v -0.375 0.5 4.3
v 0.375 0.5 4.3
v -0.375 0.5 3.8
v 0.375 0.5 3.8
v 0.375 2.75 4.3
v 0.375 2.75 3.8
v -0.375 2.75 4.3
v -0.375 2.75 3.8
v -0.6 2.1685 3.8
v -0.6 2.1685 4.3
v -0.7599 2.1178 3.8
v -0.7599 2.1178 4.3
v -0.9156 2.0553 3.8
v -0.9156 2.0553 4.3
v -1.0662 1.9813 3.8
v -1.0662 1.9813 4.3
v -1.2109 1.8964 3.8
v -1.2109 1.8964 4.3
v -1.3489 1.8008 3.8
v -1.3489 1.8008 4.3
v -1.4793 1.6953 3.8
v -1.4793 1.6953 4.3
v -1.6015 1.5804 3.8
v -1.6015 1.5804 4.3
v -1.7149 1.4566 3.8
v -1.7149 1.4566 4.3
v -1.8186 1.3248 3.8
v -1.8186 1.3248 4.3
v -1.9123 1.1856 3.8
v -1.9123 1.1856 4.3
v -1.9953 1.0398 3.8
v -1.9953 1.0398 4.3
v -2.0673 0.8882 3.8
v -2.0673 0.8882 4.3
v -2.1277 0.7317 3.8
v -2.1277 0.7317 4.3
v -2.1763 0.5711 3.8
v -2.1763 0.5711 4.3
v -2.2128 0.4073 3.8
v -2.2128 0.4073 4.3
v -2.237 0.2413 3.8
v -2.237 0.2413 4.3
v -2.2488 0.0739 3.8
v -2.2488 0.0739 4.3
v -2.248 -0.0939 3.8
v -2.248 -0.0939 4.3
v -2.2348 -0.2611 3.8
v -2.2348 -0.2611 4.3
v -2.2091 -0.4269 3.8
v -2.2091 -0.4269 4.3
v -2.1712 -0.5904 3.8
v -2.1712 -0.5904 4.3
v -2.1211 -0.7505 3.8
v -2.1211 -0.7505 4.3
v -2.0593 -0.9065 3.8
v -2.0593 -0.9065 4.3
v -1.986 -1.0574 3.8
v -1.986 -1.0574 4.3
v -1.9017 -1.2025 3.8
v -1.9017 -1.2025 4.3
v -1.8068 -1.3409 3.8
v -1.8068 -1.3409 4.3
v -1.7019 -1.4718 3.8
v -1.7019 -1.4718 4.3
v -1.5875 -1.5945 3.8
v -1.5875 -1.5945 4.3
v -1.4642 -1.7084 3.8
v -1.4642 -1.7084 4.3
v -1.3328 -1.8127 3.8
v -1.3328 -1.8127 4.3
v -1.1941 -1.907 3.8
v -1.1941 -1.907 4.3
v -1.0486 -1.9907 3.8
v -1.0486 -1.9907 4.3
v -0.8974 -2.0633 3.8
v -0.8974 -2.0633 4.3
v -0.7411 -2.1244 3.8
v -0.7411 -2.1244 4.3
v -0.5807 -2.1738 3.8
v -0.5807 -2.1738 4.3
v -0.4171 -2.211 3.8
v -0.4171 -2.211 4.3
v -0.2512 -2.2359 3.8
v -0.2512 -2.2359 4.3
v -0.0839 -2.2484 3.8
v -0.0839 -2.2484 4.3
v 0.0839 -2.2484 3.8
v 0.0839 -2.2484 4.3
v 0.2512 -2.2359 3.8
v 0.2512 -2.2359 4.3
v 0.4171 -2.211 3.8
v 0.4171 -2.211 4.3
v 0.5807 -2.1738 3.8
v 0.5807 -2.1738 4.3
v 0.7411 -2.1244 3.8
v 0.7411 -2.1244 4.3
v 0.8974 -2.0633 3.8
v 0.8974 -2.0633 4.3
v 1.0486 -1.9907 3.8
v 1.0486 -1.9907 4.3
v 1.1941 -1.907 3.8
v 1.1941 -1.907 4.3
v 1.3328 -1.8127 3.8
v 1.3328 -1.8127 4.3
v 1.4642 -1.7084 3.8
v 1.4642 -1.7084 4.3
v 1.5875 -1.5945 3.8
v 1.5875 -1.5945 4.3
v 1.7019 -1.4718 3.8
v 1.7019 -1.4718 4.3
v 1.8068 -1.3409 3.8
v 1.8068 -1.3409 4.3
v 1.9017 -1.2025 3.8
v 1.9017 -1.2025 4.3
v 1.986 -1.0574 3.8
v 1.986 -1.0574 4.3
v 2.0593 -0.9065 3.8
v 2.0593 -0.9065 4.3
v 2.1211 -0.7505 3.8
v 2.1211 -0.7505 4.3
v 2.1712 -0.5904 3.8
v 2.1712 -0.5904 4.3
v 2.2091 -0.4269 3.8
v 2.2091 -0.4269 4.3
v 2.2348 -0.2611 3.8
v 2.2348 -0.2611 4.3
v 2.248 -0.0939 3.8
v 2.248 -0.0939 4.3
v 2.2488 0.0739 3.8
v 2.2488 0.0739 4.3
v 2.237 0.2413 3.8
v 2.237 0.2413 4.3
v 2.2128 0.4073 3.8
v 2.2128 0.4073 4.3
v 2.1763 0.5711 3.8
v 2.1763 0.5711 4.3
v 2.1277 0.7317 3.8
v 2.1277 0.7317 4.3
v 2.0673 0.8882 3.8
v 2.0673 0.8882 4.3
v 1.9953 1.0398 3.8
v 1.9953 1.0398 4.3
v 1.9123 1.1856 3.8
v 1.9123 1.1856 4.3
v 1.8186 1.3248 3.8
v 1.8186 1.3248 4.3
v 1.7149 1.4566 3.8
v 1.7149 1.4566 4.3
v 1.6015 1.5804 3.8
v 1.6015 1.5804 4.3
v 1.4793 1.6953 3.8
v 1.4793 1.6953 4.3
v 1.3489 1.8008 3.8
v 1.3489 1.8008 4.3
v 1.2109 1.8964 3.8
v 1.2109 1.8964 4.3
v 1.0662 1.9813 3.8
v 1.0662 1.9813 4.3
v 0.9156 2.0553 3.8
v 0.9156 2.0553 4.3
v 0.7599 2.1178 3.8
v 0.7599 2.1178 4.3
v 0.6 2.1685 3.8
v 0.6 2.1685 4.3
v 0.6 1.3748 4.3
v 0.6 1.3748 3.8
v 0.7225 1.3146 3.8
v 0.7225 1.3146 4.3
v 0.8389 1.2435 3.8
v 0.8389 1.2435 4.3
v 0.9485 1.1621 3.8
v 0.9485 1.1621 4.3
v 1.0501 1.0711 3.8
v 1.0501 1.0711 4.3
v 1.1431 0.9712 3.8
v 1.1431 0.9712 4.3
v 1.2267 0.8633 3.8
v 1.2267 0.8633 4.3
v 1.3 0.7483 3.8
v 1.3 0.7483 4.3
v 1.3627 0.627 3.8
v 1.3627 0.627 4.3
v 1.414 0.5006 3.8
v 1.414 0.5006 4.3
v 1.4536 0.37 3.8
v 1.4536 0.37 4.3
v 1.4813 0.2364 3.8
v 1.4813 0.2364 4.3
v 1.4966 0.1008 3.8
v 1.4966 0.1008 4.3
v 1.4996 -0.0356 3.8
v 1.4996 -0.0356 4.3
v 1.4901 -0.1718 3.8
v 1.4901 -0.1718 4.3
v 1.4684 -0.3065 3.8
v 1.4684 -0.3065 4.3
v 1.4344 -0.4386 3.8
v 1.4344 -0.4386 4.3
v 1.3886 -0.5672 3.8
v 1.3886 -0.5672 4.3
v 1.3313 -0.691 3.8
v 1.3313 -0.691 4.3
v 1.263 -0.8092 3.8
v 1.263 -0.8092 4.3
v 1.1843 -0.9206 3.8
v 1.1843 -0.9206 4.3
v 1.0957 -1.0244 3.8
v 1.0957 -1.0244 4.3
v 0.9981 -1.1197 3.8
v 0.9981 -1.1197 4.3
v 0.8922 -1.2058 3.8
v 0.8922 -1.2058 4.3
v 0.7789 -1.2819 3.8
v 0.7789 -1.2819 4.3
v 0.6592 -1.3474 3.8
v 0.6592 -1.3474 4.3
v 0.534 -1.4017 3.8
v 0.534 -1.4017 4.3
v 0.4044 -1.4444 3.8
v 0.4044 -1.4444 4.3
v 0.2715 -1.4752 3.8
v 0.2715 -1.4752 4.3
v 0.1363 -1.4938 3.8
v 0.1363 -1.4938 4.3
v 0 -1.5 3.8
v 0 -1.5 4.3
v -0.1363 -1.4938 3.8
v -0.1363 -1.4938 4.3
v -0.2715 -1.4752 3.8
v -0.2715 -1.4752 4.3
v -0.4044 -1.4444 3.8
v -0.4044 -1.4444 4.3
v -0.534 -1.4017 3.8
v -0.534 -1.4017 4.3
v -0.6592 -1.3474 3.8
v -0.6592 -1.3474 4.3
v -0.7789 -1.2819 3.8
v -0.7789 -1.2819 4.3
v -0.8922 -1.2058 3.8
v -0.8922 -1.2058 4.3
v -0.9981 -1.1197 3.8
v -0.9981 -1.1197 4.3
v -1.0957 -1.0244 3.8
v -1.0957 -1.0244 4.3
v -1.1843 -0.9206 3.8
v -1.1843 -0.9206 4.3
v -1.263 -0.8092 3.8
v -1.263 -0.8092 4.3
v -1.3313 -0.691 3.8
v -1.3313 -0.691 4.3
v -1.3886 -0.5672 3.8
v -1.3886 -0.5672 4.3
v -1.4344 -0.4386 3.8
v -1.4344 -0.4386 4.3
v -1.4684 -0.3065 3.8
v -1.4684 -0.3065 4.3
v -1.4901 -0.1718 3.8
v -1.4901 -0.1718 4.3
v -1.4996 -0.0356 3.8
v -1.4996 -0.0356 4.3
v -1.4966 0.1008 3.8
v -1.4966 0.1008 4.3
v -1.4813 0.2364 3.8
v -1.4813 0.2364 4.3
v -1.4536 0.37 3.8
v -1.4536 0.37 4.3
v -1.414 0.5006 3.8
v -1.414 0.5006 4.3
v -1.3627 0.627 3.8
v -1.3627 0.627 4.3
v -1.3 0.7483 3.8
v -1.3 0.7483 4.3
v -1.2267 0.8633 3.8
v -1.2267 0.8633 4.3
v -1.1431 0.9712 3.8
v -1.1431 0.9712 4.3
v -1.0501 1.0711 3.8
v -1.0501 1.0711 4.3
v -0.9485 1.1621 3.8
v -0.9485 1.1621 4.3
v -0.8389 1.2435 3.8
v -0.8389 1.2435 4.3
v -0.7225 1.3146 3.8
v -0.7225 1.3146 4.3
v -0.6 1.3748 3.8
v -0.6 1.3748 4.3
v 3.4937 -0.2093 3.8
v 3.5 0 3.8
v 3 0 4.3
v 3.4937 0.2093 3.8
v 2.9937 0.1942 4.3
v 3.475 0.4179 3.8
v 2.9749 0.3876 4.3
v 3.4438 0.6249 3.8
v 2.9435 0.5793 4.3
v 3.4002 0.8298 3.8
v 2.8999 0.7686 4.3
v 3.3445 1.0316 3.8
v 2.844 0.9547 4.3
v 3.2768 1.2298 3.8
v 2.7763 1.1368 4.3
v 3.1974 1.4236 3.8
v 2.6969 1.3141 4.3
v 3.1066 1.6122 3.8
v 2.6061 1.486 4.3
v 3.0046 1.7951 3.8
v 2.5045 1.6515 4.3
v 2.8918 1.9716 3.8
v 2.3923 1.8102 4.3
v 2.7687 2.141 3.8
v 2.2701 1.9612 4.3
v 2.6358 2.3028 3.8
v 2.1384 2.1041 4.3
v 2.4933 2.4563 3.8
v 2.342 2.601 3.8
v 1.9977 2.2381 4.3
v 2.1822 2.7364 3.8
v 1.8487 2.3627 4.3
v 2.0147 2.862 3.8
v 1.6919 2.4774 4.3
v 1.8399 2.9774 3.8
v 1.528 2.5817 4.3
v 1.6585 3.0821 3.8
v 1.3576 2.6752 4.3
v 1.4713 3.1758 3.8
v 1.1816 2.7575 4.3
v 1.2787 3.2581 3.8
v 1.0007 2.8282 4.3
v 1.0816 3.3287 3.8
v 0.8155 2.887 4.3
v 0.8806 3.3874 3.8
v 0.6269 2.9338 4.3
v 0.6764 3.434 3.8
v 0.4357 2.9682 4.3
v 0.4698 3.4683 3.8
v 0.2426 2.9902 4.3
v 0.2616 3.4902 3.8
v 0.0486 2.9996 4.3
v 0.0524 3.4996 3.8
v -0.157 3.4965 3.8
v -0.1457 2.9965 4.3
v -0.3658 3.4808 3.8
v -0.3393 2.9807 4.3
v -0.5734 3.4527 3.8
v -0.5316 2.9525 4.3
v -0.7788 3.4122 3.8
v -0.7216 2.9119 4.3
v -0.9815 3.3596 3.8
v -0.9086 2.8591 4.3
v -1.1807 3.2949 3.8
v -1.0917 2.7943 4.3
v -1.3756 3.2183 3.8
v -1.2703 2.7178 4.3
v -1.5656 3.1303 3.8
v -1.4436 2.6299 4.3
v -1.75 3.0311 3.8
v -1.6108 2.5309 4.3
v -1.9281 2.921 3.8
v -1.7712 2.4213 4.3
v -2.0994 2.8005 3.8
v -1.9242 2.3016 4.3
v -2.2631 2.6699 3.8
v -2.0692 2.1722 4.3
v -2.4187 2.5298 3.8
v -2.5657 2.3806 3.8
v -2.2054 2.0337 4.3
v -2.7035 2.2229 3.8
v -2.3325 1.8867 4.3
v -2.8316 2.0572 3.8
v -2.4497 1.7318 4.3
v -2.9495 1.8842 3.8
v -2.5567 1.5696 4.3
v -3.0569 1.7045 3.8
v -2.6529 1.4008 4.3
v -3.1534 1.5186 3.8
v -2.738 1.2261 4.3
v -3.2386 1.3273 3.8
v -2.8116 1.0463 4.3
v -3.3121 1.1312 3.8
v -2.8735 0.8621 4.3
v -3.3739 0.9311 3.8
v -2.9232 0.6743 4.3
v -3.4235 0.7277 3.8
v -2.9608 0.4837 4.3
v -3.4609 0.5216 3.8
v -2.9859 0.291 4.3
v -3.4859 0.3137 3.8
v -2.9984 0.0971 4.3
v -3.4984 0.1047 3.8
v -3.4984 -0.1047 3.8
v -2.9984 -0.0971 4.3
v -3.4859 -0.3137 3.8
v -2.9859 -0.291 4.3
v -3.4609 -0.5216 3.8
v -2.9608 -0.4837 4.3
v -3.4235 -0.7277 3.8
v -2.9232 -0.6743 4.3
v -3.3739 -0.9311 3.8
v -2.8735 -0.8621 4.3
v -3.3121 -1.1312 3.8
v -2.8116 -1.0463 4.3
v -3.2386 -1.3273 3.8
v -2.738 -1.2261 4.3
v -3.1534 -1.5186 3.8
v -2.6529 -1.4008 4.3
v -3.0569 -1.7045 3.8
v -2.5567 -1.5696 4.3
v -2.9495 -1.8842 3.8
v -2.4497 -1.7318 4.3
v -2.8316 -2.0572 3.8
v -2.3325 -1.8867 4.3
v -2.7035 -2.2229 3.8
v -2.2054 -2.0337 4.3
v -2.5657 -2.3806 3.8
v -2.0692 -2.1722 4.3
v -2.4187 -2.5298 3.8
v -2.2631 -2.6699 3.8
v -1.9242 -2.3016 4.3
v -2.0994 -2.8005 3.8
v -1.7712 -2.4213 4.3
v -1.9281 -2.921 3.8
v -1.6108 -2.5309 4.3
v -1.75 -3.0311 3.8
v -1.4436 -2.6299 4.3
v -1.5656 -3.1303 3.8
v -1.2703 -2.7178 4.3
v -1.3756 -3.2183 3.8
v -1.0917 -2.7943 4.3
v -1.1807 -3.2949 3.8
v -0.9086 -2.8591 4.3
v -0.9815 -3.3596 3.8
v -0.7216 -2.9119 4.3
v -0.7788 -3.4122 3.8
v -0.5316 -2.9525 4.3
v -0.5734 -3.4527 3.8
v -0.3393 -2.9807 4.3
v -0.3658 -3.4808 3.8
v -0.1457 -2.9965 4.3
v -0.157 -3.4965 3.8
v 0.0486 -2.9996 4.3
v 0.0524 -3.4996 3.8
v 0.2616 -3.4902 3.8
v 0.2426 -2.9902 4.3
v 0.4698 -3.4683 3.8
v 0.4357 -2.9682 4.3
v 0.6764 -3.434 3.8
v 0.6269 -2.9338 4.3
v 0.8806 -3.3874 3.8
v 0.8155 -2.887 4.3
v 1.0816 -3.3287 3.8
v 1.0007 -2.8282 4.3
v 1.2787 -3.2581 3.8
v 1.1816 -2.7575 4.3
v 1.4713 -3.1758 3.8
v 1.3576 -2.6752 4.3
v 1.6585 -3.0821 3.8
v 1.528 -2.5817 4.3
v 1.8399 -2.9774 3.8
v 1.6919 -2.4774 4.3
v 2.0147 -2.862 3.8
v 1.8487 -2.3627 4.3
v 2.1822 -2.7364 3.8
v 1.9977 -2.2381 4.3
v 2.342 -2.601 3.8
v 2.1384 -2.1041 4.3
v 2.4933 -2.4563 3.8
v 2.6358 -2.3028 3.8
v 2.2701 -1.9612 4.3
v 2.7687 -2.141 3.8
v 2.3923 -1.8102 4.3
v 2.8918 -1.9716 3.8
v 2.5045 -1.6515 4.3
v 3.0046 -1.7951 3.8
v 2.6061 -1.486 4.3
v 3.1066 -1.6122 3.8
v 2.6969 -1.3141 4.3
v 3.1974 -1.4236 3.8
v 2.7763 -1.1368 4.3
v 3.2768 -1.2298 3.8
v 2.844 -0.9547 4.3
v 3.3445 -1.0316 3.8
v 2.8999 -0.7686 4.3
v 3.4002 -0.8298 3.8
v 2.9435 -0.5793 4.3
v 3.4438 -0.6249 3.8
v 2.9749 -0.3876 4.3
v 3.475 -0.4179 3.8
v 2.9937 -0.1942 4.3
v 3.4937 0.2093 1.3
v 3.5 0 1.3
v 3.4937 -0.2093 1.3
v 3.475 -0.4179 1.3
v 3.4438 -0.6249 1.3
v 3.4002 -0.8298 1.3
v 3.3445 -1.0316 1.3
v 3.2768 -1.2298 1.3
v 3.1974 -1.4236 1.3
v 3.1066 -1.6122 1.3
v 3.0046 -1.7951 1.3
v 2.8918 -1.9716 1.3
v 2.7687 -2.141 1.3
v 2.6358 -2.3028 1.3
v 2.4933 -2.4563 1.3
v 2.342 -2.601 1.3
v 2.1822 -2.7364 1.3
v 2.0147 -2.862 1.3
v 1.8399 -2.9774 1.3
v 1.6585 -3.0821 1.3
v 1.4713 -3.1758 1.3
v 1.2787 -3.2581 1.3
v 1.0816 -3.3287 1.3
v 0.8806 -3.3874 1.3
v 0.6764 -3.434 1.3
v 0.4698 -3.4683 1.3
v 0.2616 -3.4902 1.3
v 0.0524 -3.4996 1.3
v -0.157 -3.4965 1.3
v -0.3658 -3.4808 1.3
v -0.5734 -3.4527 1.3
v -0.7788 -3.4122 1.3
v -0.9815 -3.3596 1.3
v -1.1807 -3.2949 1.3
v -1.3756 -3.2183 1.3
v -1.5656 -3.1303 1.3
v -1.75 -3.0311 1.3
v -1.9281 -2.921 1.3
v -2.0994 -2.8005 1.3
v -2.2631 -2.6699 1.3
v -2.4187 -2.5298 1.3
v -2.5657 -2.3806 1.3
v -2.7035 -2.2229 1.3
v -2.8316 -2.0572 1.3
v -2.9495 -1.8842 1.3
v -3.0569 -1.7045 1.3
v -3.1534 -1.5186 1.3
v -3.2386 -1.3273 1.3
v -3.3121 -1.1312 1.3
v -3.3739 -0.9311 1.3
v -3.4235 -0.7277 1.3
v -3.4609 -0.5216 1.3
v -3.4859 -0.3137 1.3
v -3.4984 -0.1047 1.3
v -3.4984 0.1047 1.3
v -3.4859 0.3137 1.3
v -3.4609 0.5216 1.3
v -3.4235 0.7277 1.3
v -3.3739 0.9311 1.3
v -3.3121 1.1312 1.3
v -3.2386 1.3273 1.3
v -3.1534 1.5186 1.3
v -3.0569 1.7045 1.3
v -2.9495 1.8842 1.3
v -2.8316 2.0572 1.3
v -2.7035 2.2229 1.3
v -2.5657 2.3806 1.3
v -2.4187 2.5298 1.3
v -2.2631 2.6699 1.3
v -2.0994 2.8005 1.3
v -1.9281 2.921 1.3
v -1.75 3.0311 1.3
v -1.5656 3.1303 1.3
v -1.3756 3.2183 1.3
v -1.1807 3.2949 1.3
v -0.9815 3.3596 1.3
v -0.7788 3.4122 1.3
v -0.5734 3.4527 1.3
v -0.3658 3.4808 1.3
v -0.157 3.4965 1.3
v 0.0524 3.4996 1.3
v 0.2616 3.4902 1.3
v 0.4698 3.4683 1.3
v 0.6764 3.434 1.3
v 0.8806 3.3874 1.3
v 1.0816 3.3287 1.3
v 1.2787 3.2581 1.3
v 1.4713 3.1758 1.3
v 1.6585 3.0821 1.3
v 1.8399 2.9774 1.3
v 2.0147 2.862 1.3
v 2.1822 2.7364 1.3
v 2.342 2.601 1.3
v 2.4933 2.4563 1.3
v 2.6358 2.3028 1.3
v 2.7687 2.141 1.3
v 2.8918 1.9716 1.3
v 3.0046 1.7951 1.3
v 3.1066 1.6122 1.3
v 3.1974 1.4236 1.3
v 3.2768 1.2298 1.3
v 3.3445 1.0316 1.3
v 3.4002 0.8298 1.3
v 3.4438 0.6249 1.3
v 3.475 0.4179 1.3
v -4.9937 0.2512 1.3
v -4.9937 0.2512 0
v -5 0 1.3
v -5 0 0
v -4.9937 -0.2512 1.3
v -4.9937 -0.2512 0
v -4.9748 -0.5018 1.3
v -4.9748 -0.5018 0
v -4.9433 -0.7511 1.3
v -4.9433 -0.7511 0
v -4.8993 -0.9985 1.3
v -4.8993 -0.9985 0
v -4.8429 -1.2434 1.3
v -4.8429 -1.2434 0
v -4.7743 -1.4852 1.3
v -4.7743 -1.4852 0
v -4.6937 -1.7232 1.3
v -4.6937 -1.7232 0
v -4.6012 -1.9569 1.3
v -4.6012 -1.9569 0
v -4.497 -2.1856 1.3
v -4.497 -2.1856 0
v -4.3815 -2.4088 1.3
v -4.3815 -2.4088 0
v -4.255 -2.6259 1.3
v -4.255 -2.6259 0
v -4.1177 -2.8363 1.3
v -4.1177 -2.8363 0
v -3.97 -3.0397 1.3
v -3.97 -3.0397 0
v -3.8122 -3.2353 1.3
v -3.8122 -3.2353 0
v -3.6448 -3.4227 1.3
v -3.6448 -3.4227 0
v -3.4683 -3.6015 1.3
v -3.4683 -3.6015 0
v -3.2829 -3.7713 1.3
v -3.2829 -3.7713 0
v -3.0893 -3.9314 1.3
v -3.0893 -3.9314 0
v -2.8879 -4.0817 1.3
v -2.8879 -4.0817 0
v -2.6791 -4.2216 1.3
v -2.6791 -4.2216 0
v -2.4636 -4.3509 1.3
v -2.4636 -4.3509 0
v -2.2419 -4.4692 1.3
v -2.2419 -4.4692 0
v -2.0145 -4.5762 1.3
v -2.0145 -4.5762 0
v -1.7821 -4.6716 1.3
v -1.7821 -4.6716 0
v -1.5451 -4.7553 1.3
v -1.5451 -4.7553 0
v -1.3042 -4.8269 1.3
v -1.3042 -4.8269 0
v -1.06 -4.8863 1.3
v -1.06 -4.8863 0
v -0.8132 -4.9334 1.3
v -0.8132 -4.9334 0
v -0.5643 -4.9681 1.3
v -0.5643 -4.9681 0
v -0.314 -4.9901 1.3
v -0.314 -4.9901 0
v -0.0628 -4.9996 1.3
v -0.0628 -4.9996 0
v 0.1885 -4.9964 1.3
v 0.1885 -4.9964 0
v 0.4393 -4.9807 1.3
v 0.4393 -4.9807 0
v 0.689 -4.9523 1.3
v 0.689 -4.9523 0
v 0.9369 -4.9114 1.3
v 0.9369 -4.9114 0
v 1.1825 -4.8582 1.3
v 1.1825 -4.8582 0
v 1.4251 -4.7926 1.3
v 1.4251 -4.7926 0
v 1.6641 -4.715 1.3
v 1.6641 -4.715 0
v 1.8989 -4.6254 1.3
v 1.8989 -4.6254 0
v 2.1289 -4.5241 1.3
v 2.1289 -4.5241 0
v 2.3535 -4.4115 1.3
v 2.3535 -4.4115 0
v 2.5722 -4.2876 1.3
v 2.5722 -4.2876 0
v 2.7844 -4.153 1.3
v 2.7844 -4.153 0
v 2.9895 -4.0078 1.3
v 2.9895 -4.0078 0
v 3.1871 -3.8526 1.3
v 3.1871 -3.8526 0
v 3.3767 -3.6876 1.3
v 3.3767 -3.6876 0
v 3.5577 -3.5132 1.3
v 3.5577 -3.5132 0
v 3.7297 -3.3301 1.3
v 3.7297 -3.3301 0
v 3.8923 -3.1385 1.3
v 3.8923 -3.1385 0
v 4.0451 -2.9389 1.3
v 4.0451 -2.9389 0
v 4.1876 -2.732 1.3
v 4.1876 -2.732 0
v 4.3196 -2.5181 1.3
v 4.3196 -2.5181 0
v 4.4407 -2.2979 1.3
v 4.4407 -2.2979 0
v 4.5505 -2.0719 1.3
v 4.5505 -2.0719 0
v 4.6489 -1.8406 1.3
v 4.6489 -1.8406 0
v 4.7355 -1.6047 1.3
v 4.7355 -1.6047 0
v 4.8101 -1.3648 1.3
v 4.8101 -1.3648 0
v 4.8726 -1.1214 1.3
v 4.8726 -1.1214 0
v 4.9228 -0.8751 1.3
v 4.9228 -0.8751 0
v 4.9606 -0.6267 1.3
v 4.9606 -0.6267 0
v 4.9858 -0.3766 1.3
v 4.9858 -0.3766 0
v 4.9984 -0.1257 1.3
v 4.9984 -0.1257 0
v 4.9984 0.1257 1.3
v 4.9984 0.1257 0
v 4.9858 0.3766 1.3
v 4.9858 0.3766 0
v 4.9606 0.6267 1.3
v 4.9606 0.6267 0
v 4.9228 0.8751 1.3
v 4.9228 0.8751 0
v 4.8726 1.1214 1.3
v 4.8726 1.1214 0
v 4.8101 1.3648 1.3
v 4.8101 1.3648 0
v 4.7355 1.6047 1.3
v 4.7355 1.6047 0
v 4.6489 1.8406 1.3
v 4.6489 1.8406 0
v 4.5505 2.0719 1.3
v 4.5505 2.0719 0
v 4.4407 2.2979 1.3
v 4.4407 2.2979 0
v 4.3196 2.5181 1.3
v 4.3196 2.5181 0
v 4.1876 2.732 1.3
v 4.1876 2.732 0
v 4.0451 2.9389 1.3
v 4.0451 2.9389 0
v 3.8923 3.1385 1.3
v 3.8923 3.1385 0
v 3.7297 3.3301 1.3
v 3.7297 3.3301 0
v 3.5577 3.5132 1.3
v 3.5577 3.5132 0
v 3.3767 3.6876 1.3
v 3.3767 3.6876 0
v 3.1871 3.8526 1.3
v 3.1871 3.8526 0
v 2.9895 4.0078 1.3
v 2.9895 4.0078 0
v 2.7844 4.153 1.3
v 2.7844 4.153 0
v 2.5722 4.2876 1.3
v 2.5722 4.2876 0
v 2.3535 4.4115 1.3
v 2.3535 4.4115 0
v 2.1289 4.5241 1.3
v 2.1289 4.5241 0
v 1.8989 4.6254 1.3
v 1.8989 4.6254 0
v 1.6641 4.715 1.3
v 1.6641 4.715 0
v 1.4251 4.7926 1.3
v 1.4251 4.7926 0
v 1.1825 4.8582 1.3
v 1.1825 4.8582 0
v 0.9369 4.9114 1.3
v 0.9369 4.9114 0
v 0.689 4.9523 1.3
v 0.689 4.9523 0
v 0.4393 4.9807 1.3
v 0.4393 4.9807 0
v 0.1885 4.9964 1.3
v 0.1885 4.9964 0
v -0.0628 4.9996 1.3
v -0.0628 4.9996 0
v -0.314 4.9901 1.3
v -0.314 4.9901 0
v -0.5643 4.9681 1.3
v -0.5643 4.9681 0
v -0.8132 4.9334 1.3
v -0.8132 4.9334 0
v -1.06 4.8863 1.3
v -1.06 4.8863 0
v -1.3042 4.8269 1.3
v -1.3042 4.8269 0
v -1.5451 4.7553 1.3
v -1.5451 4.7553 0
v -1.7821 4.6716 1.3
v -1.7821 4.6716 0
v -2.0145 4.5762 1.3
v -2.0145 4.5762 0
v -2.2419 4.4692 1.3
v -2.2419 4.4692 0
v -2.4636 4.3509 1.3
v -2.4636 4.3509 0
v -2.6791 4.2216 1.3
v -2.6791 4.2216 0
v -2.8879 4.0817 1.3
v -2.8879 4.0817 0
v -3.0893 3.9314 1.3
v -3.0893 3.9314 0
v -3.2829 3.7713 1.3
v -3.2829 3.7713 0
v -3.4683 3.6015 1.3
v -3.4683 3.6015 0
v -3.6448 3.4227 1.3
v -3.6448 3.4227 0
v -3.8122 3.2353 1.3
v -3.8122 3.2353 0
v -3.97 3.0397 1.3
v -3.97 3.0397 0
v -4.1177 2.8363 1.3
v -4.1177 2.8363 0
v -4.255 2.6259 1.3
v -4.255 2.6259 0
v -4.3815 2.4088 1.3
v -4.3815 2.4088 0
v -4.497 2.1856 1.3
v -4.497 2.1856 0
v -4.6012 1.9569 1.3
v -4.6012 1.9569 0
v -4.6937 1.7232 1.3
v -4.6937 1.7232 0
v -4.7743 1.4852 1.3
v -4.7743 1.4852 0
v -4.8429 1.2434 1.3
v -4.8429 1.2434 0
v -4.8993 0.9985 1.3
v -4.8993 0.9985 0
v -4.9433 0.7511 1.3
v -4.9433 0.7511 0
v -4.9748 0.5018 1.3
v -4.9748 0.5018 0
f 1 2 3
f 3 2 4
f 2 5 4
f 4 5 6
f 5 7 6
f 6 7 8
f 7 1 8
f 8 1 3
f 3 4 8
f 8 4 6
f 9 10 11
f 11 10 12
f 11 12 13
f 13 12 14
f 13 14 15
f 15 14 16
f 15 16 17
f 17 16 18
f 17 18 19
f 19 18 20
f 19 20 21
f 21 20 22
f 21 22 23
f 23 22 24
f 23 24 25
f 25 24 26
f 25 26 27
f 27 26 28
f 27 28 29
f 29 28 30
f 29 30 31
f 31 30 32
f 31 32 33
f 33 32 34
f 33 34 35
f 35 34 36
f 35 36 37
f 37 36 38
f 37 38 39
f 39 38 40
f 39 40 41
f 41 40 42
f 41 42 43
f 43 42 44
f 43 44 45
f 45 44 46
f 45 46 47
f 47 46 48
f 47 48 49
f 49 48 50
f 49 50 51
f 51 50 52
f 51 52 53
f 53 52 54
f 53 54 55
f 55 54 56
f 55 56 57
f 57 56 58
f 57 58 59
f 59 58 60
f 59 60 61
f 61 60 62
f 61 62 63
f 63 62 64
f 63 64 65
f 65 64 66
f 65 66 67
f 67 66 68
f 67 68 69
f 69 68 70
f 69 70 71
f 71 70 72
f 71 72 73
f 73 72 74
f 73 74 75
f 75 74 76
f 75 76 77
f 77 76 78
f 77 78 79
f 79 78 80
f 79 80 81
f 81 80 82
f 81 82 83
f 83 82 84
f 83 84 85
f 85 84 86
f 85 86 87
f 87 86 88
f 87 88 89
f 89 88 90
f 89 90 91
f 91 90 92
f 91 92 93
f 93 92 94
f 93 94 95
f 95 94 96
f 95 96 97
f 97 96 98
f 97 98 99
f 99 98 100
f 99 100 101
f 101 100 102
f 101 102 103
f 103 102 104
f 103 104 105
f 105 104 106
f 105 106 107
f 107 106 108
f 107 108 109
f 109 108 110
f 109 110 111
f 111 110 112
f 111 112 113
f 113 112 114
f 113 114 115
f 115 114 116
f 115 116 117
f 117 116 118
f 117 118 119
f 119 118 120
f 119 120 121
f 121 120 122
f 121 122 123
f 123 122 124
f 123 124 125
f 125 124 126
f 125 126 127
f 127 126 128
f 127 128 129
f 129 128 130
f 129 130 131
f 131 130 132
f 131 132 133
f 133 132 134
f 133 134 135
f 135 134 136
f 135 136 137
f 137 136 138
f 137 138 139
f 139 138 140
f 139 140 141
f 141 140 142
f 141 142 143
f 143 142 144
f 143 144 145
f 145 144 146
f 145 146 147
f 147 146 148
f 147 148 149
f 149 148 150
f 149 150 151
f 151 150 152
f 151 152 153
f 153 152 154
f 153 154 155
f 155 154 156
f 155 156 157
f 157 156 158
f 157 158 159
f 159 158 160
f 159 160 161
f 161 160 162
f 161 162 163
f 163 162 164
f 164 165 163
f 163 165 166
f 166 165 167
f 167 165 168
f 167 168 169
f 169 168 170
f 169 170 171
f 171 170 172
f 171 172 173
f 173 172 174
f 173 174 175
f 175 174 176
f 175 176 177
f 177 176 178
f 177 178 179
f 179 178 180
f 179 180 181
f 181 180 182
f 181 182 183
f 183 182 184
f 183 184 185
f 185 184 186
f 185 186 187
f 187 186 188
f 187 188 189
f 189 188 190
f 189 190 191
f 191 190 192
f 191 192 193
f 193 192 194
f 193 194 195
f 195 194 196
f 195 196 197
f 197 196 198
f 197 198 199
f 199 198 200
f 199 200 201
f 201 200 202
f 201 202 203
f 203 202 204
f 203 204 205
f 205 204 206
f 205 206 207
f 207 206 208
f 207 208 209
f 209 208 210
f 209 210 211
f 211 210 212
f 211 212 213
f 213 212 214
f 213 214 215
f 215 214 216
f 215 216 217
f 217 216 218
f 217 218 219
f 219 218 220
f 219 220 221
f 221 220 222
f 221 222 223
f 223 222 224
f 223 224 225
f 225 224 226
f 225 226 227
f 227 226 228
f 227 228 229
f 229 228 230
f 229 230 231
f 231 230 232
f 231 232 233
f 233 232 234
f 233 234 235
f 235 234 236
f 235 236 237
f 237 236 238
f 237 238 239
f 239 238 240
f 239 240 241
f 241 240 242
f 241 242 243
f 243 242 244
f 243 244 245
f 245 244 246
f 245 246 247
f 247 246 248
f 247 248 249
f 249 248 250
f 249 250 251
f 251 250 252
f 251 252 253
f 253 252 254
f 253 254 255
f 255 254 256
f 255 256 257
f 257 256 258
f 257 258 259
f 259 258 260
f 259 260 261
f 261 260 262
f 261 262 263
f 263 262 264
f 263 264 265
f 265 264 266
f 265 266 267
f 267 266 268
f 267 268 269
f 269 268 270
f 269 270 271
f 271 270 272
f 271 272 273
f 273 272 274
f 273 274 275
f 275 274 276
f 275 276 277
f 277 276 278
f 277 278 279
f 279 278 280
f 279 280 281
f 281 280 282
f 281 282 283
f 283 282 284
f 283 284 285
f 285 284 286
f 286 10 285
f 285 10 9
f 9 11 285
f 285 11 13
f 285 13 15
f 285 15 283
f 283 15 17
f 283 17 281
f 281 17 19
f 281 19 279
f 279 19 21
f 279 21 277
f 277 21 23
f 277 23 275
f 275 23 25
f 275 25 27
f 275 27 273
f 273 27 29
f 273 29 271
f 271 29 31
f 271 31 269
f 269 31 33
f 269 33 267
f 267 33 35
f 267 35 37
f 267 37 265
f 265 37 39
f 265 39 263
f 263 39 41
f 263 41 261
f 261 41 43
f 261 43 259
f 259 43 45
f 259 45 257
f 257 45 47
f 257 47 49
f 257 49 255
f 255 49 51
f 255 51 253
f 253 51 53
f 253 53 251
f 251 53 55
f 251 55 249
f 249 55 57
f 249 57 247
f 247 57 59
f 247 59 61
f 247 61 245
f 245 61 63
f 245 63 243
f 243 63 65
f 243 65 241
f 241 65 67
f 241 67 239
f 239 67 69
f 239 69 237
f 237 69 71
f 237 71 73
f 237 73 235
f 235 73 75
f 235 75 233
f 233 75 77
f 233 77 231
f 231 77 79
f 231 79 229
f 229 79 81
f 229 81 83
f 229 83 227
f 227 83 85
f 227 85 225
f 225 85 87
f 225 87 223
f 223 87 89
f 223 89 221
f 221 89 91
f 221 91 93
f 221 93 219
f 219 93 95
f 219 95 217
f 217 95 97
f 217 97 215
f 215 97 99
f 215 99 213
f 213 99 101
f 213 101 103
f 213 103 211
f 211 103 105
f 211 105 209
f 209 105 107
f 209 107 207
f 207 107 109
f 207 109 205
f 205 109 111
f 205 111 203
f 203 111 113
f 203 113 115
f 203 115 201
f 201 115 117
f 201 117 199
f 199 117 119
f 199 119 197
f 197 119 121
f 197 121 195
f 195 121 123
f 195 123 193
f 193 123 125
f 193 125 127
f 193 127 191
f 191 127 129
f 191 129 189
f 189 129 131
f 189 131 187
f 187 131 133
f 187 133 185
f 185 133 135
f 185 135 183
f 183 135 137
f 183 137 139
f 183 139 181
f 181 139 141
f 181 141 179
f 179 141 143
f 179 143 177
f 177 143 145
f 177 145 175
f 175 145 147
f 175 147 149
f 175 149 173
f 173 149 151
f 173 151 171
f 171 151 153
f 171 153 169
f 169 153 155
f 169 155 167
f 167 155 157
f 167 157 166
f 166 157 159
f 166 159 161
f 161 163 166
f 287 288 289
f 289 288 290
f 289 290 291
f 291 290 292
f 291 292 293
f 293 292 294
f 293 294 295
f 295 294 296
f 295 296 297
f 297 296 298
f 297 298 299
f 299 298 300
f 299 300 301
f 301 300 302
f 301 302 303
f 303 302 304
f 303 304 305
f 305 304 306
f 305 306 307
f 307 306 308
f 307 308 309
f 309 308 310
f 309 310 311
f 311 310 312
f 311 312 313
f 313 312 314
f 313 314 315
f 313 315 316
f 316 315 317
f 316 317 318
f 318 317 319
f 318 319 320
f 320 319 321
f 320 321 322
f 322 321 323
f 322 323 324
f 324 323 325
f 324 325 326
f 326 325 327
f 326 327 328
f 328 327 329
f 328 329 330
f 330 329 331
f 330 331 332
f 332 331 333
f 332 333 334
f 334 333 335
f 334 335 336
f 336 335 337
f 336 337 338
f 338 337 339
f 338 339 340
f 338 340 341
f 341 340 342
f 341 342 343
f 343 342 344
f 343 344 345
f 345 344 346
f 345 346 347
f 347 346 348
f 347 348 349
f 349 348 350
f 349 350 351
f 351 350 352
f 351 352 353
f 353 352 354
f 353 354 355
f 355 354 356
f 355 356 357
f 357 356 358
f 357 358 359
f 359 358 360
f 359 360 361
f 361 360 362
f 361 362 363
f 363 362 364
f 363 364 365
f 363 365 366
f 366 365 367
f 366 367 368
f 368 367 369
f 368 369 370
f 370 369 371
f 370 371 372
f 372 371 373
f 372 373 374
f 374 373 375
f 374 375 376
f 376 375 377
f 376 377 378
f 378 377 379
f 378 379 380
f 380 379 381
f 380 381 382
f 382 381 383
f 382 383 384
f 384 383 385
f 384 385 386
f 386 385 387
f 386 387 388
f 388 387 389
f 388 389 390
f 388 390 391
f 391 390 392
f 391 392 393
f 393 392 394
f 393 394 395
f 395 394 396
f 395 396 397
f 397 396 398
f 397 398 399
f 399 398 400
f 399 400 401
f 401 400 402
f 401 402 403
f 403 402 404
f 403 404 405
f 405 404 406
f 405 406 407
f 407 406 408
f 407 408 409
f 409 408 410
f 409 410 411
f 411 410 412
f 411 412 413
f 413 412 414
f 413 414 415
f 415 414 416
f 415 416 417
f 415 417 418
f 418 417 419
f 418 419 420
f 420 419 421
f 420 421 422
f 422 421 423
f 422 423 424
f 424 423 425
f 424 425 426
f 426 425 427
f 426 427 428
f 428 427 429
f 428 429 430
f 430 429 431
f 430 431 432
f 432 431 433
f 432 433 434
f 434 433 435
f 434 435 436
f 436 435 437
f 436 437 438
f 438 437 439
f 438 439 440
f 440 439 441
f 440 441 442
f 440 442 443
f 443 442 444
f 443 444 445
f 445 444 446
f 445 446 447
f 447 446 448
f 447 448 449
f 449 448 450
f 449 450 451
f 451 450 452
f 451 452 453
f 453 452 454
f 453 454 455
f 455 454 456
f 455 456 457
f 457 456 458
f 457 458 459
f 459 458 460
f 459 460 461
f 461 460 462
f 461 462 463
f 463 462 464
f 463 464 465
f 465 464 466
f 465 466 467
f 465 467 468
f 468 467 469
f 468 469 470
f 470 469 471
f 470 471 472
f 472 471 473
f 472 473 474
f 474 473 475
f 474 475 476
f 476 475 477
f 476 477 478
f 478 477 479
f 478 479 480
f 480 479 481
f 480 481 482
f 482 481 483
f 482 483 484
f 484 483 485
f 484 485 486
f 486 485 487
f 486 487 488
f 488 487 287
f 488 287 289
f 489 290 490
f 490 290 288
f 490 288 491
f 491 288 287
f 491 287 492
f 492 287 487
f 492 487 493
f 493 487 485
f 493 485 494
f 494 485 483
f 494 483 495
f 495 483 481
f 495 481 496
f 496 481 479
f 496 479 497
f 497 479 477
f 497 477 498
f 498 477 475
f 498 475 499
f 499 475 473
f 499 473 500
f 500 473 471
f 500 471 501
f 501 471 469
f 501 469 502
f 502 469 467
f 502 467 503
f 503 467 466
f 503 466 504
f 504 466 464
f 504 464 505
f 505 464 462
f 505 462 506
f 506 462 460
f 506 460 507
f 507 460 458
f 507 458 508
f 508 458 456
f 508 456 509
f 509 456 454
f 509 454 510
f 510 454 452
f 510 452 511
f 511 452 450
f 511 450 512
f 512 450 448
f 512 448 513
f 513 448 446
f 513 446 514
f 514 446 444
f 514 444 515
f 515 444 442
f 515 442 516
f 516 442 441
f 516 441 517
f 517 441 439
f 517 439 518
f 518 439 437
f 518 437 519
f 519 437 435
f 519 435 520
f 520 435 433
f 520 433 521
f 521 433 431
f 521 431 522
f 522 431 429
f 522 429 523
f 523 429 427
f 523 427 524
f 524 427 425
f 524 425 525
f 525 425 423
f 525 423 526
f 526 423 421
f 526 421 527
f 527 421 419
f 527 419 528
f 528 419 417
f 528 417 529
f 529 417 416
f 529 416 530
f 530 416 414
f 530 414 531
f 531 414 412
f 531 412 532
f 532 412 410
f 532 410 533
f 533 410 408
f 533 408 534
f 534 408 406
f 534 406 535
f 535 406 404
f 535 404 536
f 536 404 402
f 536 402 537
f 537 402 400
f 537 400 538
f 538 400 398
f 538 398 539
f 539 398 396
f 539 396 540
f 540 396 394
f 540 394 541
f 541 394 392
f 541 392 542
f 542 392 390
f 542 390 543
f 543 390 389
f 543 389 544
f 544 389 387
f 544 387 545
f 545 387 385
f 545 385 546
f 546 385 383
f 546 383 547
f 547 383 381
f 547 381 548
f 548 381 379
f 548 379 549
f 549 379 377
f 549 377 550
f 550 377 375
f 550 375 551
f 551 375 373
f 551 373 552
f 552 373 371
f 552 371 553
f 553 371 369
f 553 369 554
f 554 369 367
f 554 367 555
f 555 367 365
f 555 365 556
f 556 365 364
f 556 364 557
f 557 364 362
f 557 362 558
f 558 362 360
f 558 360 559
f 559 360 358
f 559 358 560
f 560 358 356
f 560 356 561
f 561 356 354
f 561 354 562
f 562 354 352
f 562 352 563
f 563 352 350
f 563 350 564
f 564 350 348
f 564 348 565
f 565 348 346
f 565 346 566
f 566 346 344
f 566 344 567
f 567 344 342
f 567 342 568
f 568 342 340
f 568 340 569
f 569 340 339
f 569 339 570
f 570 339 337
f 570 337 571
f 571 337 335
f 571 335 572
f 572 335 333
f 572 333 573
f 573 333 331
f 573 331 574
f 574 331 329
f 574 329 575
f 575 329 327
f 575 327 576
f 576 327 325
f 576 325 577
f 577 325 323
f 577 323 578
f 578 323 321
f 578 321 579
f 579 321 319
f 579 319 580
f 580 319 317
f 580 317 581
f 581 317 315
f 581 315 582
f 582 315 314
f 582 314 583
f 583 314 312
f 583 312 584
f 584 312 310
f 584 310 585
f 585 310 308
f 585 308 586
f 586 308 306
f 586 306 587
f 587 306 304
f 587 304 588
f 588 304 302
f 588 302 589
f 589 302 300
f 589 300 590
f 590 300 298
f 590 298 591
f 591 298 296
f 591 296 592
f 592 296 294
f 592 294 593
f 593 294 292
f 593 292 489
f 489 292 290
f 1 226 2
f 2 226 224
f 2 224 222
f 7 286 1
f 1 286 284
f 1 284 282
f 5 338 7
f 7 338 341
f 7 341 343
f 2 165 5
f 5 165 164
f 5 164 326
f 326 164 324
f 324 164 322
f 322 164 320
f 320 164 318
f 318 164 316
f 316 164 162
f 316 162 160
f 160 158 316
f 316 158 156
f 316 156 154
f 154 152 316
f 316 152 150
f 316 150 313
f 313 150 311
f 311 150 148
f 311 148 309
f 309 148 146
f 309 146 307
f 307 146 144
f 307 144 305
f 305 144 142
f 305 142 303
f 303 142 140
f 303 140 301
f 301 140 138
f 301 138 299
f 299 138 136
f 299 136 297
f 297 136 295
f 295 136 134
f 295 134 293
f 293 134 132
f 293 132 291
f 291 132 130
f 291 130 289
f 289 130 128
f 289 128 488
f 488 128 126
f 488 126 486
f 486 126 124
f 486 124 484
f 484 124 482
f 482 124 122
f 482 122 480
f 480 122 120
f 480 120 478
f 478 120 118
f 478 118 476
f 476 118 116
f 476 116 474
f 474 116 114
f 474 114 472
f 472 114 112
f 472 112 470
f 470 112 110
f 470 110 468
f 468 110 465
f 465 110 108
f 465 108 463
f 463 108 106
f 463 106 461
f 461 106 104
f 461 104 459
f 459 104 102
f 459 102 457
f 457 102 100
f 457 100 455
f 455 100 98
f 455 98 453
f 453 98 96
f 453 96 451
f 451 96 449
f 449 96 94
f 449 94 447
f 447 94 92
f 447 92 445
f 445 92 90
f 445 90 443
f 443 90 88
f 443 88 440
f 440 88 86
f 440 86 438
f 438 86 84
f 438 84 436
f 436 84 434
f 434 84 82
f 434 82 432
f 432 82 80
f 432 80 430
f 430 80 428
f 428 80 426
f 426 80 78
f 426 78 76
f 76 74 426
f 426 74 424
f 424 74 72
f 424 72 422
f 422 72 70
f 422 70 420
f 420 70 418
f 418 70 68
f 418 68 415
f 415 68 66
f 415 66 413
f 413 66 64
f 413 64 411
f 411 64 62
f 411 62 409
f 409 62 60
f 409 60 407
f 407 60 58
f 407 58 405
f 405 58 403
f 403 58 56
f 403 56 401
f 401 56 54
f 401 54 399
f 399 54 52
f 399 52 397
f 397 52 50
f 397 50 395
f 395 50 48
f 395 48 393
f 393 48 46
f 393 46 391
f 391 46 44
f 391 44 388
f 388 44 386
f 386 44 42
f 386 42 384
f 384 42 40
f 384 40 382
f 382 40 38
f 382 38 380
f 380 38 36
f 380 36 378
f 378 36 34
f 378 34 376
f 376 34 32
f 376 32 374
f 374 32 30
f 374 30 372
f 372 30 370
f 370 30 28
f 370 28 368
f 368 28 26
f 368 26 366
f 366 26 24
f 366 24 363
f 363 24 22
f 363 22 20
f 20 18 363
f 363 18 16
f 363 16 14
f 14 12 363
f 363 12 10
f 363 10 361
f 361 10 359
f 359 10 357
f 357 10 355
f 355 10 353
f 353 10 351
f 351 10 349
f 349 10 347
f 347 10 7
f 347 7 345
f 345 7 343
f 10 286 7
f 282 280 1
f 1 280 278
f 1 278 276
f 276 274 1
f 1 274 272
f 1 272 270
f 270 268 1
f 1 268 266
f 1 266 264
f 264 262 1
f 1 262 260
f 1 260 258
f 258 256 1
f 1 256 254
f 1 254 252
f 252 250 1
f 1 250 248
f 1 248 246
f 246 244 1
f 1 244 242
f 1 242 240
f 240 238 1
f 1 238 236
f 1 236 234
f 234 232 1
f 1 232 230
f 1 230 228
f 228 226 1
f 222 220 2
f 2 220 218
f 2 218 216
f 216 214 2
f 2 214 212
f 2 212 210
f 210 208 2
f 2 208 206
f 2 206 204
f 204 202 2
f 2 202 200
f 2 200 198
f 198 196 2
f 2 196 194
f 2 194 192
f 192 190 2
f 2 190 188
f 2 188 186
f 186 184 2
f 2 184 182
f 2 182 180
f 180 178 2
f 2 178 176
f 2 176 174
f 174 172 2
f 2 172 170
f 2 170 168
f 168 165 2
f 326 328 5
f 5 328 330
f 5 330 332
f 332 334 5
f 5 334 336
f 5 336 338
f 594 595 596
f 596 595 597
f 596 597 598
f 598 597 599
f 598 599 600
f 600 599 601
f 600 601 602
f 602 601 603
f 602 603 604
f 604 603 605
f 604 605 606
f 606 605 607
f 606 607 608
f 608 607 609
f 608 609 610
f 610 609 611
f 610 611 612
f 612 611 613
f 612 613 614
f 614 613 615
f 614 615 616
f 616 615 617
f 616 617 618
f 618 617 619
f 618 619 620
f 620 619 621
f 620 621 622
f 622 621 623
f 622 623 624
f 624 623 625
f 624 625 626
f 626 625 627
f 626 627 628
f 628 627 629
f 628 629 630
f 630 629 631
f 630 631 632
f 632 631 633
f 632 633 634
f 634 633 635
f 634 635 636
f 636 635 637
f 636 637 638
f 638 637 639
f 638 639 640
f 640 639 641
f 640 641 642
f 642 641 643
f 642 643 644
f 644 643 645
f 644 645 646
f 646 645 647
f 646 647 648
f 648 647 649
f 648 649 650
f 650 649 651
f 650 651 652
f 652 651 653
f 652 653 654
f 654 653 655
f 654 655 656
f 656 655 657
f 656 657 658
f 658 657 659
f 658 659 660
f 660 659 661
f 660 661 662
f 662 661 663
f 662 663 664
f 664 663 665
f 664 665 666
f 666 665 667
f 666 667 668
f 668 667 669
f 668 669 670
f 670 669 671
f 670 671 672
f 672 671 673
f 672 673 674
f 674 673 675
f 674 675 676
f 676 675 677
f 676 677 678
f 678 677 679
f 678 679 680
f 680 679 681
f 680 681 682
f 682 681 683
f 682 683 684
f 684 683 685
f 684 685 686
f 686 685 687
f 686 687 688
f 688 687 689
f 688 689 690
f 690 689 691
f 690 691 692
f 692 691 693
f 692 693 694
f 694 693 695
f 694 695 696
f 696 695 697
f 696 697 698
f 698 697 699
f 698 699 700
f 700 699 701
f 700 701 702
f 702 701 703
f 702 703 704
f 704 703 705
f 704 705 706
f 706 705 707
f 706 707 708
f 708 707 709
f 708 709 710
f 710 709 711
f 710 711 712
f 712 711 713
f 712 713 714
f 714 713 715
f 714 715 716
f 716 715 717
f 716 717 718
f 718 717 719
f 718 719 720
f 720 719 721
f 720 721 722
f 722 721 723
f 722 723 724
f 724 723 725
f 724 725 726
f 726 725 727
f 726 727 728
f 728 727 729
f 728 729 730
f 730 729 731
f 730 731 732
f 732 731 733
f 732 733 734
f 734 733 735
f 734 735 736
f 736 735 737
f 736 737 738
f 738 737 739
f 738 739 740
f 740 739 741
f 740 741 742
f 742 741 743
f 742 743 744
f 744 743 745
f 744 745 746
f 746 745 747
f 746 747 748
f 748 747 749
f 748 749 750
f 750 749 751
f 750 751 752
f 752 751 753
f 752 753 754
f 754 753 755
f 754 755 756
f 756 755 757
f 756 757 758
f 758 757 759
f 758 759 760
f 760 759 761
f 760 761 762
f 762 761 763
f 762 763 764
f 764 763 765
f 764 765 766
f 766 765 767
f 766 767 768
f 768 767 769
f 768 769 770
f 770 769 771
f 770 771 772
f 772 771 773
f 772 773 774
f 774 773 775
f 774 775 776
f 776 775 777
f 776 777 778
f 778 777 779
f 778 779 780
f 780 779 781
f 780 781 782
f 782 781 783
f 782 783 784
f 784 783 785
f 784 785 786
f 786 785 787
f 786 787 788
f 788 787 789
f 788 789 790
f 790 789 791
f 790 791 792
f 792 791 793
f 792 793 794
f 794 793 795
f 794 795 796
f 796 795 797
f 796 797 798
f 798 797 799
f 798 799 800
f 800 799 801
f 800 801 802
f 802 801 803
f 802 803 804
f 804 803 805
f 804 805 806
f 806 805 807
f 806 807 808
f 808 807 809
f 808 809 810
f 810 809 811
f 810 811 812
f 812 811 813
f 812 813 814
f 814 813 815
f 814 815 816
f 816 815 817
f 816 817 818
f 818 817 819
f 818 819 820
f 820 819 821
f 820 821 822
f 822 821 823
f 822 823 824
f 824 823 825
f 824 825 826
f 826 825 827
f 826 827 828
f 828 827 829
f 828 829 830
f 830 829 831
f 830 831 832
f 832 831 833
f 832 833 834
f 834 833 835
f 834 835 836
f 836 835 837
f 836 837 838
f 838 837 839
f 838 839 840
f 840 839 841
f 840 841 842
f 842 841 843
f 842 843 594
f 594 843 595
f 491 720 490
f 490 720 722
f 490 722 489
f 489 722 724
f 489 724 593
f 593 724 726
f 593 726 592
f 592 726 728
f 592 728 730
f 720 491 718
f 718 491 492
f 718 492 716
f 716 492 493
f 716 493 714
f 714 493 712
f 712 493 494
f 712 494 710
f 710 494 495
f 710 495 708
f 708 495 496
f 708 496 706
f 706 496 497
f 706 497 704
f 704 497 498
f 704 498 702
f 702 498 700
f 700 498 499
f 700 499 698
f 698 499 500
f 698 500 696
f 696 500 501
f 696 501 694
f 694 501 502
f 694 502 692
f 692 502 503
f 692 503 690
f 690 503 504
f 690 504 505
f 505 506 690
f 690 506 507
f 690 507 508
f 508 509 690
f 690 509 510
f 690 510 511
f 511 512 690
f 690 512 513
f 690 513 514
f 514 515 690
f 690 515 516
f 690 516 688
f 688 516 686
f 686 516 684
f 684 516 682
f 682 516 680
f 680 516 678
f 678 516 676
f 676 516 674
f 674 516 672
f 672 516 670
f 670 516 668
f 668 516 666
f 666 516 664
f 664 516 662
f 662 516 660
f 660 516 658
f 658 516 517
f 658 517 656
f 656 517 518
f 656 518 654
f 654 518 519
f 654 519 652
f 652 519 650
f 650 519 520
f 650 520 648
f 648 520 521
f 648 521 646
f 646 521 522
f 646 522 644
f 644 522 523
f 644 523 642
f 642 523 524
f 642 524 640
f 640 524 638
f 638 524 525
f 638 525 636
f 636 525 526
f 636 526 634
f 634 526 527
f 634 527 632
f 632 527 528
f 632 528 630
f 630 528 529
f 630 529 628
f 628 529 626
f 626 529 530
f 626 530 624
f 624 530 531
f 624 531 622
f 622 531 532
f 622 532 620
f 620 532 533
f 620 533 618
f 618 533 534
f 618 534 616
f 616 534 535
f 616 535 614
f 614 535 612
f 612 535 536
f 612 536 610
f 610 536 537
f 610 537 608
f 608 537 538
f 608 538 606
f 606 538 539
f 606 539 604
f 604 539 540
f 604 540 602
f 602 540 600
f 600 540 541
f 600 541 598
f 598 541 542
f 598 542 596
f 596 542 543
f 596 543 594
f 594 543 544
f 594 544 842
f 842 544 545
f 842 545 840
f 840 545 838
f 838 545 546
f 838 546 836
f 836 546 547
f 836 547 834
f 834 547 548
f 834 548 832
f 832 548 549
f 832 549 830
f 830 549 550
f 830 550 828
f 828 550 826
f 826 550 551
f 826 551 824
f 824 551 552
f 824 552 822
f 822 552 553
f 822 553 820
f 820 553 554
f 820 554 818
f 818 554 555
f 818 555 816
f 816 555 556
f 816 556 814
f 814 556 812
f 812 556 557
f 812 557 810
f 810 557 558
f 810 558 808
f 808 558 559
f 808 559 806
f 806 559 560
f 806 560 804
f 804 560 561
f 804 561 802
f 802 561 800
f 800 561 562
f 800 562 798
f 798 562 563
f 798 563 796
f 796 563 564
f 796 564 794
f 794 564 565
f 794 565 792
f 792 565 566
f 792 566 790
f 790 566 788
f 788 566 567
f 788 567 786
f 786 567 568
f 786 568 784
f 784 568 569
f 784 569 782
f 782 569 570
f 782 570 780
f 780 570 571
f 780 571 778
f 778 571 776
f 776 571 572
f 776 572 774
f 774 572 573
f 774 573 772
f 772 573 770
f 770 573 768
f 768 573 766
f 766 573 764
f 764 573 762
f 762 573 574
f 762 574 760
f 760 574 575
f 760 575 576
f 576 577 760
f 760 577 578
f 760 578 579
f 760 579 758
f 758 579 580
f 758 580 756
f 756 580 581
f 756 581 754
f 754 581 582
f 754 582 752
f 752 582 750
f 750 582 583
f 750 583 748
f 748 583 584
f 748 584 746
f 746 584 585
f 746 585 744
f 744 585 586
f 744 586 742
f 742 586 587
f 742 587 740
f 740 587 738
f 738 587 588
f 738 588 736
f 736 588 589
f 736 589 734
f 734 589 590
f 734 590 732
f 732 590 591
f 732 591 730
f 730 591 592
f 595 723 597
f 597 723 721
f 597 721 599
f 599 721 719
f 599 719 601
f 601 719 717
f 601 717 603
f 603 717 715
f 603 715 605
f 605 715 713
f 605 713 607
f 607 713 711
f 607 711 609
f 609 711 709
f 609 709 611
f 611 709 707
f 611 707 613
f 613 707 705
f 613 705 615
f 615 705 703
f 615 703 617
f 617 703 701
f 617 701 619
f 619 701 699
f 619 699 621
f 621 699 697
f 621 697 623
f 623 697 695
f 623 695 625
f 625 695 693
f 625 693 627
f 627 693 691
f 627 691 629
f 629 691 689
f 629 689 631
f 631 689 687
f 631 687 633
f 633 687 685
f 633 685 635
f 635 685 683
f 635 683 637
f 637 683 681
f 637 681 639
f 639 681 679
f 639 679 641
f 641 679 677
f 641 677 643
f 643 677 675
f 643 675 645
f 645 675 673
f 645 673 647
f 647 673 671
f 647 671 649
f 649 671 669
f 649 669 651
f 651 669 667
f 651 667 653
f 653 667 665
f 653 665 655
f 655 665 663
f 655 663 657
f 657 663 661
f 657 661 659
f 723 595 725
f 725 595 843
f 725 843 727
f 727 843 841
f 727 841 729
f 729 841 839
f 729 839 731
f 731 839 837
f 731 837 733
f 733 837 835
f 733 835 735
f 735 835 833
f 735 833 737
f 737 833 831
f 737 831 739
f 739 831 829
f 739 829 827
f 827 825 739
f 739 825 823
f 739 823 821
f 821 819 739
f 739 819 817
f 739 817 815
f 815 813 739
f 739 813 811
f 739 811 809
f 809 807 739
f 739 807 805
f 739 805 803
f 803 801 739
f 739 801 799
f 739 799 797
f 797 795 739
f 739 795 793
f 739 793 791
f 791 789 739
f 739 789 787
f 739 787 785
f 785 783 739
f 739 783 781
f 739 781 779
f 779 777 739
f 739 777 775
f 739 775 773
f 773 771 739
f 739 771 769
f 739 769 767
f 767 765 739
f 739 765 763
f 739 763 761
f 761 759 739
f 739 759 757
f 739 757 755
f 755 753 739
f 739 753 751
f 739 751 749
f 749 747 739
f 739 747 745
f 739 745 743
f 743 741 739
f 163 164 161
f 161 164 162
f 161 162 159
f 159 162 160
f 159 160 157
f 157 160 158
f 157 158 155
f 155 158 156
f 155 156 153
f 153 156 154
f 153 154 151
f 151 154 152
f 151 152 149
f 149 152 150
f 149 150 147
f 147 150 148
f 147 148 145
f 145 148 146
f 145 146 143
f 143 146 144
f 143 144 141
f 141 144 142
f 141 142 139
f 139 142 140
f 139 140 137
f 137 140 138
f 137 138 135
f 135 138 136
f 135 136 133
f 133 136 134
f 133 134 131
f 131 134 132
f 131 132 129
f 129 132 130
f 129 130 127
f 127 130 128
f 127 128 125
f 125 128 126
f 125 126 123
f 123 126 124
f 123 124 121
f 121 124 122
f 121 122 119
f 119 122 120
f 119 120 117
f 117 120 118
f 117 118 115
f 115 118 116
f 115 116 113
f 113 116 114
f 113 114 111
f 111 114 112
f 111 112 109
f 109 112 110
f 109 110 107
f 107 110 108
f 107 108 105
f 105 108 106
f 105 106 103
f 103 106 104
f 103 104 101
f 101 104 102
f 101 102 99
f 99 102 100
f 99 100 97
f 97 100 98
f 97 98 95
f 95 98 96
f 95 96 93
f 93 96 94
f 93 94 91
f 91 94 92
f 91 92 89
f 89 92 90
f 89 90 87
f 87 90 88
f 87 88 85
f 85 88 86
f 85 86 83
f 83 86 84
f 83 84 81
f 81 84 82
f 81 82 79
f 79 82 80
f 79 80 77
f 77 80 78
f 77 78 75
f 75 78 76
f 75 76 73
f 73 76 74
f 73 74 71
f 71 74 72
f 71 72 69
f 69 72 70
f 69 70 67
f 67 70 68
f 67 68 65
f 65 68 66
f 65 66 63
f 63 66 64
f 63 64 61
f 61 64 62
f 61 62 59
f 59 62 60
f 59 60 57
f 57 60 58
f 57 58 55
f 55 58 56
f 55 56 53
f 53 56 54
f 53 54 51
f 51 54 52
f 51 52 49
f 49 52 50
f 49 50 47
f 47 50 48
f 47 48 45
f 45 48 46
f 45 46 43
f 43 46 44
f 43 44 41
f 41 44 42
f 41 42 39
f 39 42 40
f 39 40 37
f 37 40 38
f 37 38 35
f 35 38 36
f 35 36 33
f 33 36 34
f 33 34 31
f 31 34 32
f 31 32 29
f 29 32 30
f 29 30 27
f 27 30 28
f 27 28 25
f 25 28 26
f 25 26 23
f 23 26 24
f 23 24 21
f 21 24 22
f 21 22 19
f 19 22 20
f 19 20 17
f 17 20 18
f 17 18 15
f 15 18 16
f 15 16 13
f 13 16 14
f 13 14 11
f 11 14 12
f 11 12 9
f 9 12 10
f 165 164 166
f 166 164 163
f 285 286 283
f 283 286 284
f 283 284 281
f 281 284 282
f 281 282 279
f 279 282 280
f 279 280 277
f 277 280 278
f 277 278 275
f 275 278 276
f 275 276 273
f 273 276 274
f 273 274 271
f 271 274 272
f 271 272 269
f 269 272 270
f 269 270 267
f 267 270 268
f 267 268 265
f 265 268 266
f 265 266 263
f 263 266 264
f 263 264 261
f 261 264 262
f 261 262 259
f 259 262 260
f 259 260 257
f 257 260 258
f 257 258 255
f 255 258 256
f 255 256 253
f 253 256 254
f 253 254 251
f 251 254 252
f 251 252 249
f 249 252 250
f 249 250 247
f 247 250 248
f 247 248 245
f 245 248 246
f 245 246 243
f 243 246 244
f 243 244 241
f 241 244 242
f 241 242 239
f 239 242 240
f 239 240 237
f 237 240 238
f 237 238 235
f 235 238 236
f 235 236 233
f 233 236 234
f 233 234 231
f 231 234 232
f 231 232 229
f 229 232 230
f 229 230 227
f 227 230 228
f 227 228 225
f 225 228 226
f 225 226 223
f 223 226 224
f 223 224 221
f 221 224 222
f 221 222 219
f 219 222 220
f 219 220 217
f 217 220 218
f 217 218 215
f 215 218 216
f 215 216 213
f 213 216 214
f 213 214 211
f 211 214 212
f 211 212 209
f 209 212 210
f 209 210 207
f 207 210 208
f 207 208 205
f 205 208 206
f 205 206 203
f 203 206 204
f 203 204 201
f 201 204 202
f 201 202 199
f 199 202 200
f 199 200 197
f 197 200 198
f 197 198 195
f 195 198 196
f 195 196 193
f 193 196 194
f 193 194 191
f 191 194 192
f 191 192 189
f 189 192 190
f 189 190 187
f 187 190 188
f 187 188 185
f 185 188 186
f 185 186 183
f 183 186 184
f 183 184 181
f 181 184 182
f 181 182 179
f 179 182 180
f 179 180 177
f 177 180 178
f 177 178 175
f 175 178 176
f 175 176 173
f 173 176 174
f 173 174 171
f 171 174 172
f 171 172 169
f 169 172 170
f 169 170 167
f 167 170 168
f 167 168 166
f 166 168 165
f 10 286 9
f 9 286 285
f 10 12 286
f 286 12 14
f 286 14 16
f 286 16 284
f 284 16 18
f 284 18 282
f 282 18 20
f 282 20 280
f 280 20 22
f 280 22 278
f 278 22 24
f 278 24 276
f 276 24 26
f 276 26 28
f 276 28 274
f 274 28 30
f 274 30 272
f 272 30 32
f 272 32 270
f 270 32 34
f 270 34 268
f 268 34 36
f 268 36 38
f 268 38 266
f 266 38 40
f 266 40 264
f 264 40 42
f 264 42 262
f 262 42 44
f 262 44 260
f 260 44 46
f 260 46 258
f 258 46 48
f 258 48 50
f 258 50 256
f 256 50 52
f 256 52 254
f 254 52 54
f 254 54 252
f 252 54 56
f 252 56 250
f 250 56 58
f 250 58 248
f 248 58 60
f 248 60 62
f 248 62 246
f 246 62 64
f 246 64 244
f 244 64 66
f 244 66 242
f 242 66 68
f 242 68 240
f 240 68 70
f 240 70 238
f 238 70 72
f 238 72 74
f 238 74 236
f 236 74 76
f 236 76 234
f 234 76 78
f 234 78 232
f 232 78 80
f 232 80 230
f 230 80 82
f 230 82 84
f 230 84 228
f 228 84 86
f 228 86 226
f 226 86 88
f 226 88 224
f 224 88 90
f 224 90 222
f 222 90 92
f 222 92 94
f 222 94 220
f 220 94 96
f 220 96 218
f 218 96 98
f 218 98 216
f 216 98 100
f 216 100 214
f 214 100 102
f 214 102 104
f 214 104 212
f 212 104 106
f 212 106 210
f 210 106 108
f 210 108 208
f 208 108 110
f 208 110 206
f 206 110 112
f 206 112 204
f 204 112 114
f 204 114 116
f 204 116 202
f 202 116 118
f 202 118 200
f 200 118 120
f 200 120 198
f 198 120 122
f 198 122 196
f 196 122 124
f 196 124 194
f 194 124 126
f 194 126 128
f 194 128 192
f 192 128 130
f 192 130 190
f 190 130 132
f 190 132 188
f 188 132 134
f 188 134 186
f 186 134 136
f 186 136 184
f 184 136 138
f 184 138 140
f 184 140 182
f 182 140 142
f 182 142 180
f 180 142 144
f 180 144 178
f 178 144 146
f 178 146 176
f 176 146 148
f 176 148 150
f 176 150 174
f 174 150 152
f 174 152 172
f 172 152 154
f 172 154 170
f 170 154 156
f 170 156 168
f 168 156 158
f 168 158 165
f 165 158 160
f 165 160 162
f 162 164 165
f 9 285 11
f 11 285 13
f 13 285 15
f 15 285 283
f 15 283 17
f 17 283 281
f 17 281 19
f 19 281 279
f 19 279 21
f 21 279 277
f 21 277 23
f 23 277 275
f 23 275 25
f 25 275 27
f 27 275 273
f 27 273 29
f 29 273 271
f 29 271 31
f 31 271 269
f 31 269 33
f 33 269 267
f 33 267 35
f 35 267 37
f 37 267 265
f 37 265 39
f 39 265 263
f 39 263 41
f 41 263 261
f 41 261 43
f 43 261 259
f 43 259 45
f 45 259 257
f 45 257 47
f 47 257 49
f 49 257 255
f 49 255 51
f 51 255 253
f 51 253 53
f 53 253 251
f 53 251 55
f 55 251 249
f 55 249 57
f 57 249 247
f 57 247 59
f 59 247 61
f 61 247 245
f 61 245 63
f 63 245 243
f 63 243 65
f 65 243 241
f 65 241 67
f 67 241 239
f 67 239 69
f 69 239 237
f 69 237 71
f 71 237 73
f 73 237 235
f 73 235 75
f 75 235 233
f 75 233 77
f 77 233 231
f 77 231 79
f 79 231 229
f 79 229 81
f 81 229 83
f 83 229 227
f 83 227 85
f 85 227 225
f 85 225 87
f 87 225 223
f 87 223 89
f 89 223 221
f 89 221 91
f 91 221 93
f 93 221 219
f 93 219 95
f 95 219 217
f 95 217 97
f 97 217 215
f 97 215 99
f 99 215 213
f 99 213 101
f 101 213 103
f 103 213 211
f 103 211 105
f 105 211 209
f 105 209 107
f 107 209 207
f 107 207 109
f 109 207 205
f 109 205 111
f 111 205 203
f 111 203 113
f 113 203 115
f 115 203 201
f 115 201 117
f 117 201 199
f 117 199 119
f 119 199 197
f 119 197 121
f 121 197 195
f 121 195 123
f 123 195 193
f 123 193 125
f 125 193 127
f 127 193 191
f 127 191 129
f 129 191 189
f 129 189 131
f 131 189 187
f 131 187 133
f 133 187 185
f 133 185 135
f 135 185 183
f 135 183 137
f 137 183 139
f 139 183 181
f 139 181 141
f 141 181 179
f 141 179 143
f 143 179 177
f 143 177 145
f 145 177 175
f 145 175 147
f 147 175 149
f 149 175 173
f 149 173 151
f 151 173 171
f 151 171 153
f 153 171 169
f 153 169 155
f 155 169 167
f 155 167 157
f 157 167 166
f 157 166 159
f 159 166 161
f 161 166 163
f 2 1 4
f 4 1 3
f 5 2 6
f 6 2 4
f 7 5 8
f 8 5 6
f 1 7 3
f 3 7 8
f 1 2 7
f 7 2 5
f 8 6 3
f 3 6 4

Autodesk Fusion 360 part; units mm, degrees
sketch "Sketch1" plane through (0, 0, 0) normal (0, 0, 1) x (1, 0, 0)
  circle A0 centre (0, 0) radius 5
  dimension "d1" = 10
extrude "Extrude1" add sketch "Sketch1" along normal blind 1.3 makes body 1
sketch "Sketch2" plane through (0, 0, 1.3) normal (0, 0, 1) x (-1, 0, 0)
  circle A0 centre (0, 0) radius 5
  circle A1 centre (0, 0) radius 3.5
  dimension "d4" = 7
extrude "Extrude2" add sketch "Sketch2" along normal blind 3 contours A1 bodies 1
chamfer "Chamfer1" distance 0.5 angle 45 1 edges at (3.2631, 1.2657, 4.3) on bodies 1
sketch "Sketch3" plane through (0, 0, 4.3) normal (0, 0, 1) x (-1, 0, 0)
  circle A0 centre (0, 0) radius 3
  line L0 (-0.6, -1.3748) -> (-0.6, -2.1685)
  line L1 (0.6, -1.3748) -> (0.6, -2.1685)
  arc A1 (0.6, -1.3748) -> (-0.6, -1.3748) centre (0, 0) ccw
  arc A2 (0.6, -2.1685) -> (-0.6, -2.1685) centre (0, 0) ccw
  line L2 (0.375, -0.5) -> (-0.375, -0.5)
  line L3 (-0.375, -0.5) -> (-0.375, -2.75)
  line L4 (-0.375, -2.75) -> (0.375, -2.75)
  line L5 (0.375, -2.75) -> (0.375, -0.5)
  line L6 (0, 0) -> (0, -1) construction
  point P0 (0.6, -1)
  point P1 (-0.6, -1)
  dimension "d8" = 4.5
  dimension "d9" = 3
  dimension "d10" = 0.75
  dimension "d11" = 2.25
extrude "Extrude3" add sketch "Sketch3" against normal blind 0.5 separate body contours L0 L1 A1 A2 | L2 L3 L4 L5 makes body 2 at (0.7039, 1.8668, 4.3) makes body 3 at (0.125, 1.25, 4.3)
combine "Combine1" operation cut target body 1 tool bodies 2 3 keep tools
